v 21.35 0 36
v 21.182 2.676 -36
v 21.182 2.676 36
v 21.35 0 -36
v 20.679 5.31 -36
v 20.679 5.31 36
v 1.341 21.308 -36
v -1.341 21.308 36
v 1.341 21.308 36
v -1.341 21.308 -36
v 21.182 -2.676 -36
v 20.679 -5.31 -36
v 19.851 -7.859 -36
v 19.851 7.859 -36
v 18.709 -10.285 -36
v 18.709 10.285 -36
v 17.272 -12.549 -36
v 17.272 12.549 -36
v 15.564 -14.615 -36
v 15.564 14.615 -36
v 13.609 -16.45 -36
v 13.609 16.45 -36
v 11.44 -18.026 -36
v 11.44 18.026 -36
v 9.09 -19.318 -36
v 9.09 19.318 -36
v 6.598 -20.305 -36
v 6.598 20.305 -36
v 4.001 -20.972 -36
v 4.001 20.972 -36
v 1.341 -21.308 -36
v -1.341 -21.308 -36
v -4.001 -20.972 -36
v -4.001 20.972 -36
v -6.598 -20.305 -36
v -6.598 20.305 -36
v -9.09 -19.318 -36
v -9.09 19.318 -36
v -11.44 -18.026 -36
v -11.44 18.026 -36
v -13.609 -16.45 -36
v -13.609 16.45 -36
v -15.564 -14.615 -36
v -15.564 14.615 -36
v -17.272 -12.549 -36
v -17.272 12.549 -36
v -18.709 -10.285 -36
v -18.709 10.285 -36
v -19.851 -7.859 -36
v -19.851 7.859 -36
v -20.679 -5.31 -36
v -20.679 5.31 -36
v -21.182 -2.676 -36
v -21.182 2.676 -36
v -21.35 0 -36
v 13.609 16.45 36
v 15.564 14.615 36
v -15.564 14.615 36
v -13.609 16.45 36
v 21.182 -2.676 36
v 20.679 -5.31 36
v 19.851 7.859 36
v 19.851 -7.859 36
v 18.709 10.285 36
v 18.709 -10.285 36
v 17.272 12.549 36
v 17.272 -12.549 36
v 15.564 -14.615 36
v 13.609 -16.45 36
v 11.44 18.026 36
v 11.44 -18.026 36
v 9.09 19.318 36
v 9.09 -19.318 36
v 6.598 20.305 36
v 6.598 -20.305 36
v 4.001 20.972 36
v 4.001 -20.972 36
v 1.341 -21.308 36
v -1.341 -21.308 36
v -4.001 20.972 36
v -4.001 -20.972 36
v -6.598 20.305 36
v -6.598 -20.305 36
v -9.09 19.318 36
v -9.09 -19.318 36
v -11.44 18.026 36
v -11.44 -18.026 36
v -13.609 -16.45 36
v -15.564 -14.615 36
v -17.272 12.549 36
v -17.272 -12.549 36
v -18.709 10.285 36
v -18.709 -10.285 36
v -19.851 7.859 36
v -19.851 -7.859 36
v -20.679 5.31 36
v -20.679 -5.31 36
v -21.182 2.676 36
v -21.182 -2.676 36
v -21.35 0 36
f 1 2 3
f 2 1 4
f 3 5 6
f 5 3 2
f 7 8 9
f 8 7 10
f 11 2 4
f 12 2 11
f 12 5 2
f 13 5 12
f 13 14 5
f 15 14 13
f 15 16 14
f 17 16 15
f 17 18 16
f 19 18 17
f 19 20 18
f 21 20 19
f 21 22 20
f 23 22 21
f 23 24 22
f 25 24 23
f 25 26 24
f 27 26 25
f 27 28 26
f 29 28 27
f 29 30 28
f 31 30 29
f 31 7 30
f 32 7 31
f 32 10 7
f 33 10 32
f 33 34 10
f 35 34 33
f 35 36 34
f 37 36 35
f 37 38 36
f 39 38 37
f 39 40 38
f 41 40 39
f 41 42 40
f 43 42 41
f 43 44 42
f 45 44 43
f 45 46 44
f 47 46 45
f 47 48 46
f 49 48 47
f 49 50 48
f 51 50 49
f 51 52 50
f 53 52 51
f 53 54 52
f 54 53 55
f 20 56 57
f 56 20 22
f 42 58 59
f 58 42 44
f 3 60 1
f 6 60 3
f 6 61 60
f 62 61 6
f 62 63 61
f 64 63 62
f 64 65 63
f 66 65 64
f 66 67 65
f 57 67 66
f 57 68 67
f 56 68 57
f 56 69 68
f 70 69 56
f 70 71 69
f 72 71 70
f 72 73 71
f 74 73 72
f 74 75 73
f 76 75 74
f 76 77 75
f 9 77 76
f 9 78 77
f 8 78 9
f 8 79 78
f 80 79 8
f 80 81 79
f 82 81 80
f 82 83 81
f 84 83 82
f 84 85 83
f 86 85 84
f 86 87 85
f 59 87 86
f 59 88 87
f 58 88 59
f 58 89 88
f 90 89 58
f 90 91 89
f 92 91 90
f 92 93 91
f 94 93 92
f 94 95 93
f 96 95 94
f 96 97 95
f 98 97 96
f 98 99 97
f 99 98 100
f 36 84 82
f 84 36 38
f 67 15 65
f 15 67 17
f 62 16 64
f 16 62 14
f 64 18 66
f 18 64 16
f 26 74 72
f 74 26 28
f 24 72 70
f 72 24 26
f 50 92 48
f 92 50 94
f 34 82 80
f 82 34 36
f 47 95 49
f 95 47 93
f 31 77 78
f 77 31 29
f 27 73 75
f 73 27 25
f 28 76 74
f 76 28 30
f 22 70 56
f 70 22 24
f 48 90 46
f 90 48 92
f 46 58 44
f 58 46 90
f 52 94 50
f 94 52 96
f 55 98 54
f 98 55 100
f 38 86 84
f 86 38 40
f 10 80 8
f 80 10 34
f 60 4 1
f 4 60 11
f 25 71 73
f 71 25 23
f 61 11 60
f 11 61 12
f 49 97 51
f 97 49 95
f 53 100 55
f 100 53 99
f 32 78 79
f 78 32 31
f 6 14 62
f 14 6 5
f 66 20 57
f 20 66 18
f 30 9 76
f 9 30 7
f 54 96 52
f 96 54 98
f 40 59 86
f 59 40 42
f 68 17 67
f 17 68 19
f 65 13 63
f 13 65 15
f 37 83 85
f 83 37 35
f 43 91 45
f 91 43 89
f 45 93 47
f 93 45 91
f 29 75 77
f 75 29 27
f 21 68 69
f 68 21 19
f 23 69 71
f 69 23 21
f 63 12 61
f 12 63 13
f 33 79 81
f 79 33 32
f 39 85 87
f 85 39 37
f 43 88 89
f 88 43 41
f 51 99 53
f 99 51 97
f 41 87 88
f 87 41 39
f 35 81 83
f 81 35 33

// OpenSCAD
$fn = 50;


difference() {
	union() {
		translate(v = [0, 0, -36.0000000000]) {
			cylinder(h = 72, r = 21.3500000000);
		}
	}
	union() {
		translate(v = [0, 0, -100.0000000000]) {
			cylinder(h = 200, r = 0);
		}
	}
}
